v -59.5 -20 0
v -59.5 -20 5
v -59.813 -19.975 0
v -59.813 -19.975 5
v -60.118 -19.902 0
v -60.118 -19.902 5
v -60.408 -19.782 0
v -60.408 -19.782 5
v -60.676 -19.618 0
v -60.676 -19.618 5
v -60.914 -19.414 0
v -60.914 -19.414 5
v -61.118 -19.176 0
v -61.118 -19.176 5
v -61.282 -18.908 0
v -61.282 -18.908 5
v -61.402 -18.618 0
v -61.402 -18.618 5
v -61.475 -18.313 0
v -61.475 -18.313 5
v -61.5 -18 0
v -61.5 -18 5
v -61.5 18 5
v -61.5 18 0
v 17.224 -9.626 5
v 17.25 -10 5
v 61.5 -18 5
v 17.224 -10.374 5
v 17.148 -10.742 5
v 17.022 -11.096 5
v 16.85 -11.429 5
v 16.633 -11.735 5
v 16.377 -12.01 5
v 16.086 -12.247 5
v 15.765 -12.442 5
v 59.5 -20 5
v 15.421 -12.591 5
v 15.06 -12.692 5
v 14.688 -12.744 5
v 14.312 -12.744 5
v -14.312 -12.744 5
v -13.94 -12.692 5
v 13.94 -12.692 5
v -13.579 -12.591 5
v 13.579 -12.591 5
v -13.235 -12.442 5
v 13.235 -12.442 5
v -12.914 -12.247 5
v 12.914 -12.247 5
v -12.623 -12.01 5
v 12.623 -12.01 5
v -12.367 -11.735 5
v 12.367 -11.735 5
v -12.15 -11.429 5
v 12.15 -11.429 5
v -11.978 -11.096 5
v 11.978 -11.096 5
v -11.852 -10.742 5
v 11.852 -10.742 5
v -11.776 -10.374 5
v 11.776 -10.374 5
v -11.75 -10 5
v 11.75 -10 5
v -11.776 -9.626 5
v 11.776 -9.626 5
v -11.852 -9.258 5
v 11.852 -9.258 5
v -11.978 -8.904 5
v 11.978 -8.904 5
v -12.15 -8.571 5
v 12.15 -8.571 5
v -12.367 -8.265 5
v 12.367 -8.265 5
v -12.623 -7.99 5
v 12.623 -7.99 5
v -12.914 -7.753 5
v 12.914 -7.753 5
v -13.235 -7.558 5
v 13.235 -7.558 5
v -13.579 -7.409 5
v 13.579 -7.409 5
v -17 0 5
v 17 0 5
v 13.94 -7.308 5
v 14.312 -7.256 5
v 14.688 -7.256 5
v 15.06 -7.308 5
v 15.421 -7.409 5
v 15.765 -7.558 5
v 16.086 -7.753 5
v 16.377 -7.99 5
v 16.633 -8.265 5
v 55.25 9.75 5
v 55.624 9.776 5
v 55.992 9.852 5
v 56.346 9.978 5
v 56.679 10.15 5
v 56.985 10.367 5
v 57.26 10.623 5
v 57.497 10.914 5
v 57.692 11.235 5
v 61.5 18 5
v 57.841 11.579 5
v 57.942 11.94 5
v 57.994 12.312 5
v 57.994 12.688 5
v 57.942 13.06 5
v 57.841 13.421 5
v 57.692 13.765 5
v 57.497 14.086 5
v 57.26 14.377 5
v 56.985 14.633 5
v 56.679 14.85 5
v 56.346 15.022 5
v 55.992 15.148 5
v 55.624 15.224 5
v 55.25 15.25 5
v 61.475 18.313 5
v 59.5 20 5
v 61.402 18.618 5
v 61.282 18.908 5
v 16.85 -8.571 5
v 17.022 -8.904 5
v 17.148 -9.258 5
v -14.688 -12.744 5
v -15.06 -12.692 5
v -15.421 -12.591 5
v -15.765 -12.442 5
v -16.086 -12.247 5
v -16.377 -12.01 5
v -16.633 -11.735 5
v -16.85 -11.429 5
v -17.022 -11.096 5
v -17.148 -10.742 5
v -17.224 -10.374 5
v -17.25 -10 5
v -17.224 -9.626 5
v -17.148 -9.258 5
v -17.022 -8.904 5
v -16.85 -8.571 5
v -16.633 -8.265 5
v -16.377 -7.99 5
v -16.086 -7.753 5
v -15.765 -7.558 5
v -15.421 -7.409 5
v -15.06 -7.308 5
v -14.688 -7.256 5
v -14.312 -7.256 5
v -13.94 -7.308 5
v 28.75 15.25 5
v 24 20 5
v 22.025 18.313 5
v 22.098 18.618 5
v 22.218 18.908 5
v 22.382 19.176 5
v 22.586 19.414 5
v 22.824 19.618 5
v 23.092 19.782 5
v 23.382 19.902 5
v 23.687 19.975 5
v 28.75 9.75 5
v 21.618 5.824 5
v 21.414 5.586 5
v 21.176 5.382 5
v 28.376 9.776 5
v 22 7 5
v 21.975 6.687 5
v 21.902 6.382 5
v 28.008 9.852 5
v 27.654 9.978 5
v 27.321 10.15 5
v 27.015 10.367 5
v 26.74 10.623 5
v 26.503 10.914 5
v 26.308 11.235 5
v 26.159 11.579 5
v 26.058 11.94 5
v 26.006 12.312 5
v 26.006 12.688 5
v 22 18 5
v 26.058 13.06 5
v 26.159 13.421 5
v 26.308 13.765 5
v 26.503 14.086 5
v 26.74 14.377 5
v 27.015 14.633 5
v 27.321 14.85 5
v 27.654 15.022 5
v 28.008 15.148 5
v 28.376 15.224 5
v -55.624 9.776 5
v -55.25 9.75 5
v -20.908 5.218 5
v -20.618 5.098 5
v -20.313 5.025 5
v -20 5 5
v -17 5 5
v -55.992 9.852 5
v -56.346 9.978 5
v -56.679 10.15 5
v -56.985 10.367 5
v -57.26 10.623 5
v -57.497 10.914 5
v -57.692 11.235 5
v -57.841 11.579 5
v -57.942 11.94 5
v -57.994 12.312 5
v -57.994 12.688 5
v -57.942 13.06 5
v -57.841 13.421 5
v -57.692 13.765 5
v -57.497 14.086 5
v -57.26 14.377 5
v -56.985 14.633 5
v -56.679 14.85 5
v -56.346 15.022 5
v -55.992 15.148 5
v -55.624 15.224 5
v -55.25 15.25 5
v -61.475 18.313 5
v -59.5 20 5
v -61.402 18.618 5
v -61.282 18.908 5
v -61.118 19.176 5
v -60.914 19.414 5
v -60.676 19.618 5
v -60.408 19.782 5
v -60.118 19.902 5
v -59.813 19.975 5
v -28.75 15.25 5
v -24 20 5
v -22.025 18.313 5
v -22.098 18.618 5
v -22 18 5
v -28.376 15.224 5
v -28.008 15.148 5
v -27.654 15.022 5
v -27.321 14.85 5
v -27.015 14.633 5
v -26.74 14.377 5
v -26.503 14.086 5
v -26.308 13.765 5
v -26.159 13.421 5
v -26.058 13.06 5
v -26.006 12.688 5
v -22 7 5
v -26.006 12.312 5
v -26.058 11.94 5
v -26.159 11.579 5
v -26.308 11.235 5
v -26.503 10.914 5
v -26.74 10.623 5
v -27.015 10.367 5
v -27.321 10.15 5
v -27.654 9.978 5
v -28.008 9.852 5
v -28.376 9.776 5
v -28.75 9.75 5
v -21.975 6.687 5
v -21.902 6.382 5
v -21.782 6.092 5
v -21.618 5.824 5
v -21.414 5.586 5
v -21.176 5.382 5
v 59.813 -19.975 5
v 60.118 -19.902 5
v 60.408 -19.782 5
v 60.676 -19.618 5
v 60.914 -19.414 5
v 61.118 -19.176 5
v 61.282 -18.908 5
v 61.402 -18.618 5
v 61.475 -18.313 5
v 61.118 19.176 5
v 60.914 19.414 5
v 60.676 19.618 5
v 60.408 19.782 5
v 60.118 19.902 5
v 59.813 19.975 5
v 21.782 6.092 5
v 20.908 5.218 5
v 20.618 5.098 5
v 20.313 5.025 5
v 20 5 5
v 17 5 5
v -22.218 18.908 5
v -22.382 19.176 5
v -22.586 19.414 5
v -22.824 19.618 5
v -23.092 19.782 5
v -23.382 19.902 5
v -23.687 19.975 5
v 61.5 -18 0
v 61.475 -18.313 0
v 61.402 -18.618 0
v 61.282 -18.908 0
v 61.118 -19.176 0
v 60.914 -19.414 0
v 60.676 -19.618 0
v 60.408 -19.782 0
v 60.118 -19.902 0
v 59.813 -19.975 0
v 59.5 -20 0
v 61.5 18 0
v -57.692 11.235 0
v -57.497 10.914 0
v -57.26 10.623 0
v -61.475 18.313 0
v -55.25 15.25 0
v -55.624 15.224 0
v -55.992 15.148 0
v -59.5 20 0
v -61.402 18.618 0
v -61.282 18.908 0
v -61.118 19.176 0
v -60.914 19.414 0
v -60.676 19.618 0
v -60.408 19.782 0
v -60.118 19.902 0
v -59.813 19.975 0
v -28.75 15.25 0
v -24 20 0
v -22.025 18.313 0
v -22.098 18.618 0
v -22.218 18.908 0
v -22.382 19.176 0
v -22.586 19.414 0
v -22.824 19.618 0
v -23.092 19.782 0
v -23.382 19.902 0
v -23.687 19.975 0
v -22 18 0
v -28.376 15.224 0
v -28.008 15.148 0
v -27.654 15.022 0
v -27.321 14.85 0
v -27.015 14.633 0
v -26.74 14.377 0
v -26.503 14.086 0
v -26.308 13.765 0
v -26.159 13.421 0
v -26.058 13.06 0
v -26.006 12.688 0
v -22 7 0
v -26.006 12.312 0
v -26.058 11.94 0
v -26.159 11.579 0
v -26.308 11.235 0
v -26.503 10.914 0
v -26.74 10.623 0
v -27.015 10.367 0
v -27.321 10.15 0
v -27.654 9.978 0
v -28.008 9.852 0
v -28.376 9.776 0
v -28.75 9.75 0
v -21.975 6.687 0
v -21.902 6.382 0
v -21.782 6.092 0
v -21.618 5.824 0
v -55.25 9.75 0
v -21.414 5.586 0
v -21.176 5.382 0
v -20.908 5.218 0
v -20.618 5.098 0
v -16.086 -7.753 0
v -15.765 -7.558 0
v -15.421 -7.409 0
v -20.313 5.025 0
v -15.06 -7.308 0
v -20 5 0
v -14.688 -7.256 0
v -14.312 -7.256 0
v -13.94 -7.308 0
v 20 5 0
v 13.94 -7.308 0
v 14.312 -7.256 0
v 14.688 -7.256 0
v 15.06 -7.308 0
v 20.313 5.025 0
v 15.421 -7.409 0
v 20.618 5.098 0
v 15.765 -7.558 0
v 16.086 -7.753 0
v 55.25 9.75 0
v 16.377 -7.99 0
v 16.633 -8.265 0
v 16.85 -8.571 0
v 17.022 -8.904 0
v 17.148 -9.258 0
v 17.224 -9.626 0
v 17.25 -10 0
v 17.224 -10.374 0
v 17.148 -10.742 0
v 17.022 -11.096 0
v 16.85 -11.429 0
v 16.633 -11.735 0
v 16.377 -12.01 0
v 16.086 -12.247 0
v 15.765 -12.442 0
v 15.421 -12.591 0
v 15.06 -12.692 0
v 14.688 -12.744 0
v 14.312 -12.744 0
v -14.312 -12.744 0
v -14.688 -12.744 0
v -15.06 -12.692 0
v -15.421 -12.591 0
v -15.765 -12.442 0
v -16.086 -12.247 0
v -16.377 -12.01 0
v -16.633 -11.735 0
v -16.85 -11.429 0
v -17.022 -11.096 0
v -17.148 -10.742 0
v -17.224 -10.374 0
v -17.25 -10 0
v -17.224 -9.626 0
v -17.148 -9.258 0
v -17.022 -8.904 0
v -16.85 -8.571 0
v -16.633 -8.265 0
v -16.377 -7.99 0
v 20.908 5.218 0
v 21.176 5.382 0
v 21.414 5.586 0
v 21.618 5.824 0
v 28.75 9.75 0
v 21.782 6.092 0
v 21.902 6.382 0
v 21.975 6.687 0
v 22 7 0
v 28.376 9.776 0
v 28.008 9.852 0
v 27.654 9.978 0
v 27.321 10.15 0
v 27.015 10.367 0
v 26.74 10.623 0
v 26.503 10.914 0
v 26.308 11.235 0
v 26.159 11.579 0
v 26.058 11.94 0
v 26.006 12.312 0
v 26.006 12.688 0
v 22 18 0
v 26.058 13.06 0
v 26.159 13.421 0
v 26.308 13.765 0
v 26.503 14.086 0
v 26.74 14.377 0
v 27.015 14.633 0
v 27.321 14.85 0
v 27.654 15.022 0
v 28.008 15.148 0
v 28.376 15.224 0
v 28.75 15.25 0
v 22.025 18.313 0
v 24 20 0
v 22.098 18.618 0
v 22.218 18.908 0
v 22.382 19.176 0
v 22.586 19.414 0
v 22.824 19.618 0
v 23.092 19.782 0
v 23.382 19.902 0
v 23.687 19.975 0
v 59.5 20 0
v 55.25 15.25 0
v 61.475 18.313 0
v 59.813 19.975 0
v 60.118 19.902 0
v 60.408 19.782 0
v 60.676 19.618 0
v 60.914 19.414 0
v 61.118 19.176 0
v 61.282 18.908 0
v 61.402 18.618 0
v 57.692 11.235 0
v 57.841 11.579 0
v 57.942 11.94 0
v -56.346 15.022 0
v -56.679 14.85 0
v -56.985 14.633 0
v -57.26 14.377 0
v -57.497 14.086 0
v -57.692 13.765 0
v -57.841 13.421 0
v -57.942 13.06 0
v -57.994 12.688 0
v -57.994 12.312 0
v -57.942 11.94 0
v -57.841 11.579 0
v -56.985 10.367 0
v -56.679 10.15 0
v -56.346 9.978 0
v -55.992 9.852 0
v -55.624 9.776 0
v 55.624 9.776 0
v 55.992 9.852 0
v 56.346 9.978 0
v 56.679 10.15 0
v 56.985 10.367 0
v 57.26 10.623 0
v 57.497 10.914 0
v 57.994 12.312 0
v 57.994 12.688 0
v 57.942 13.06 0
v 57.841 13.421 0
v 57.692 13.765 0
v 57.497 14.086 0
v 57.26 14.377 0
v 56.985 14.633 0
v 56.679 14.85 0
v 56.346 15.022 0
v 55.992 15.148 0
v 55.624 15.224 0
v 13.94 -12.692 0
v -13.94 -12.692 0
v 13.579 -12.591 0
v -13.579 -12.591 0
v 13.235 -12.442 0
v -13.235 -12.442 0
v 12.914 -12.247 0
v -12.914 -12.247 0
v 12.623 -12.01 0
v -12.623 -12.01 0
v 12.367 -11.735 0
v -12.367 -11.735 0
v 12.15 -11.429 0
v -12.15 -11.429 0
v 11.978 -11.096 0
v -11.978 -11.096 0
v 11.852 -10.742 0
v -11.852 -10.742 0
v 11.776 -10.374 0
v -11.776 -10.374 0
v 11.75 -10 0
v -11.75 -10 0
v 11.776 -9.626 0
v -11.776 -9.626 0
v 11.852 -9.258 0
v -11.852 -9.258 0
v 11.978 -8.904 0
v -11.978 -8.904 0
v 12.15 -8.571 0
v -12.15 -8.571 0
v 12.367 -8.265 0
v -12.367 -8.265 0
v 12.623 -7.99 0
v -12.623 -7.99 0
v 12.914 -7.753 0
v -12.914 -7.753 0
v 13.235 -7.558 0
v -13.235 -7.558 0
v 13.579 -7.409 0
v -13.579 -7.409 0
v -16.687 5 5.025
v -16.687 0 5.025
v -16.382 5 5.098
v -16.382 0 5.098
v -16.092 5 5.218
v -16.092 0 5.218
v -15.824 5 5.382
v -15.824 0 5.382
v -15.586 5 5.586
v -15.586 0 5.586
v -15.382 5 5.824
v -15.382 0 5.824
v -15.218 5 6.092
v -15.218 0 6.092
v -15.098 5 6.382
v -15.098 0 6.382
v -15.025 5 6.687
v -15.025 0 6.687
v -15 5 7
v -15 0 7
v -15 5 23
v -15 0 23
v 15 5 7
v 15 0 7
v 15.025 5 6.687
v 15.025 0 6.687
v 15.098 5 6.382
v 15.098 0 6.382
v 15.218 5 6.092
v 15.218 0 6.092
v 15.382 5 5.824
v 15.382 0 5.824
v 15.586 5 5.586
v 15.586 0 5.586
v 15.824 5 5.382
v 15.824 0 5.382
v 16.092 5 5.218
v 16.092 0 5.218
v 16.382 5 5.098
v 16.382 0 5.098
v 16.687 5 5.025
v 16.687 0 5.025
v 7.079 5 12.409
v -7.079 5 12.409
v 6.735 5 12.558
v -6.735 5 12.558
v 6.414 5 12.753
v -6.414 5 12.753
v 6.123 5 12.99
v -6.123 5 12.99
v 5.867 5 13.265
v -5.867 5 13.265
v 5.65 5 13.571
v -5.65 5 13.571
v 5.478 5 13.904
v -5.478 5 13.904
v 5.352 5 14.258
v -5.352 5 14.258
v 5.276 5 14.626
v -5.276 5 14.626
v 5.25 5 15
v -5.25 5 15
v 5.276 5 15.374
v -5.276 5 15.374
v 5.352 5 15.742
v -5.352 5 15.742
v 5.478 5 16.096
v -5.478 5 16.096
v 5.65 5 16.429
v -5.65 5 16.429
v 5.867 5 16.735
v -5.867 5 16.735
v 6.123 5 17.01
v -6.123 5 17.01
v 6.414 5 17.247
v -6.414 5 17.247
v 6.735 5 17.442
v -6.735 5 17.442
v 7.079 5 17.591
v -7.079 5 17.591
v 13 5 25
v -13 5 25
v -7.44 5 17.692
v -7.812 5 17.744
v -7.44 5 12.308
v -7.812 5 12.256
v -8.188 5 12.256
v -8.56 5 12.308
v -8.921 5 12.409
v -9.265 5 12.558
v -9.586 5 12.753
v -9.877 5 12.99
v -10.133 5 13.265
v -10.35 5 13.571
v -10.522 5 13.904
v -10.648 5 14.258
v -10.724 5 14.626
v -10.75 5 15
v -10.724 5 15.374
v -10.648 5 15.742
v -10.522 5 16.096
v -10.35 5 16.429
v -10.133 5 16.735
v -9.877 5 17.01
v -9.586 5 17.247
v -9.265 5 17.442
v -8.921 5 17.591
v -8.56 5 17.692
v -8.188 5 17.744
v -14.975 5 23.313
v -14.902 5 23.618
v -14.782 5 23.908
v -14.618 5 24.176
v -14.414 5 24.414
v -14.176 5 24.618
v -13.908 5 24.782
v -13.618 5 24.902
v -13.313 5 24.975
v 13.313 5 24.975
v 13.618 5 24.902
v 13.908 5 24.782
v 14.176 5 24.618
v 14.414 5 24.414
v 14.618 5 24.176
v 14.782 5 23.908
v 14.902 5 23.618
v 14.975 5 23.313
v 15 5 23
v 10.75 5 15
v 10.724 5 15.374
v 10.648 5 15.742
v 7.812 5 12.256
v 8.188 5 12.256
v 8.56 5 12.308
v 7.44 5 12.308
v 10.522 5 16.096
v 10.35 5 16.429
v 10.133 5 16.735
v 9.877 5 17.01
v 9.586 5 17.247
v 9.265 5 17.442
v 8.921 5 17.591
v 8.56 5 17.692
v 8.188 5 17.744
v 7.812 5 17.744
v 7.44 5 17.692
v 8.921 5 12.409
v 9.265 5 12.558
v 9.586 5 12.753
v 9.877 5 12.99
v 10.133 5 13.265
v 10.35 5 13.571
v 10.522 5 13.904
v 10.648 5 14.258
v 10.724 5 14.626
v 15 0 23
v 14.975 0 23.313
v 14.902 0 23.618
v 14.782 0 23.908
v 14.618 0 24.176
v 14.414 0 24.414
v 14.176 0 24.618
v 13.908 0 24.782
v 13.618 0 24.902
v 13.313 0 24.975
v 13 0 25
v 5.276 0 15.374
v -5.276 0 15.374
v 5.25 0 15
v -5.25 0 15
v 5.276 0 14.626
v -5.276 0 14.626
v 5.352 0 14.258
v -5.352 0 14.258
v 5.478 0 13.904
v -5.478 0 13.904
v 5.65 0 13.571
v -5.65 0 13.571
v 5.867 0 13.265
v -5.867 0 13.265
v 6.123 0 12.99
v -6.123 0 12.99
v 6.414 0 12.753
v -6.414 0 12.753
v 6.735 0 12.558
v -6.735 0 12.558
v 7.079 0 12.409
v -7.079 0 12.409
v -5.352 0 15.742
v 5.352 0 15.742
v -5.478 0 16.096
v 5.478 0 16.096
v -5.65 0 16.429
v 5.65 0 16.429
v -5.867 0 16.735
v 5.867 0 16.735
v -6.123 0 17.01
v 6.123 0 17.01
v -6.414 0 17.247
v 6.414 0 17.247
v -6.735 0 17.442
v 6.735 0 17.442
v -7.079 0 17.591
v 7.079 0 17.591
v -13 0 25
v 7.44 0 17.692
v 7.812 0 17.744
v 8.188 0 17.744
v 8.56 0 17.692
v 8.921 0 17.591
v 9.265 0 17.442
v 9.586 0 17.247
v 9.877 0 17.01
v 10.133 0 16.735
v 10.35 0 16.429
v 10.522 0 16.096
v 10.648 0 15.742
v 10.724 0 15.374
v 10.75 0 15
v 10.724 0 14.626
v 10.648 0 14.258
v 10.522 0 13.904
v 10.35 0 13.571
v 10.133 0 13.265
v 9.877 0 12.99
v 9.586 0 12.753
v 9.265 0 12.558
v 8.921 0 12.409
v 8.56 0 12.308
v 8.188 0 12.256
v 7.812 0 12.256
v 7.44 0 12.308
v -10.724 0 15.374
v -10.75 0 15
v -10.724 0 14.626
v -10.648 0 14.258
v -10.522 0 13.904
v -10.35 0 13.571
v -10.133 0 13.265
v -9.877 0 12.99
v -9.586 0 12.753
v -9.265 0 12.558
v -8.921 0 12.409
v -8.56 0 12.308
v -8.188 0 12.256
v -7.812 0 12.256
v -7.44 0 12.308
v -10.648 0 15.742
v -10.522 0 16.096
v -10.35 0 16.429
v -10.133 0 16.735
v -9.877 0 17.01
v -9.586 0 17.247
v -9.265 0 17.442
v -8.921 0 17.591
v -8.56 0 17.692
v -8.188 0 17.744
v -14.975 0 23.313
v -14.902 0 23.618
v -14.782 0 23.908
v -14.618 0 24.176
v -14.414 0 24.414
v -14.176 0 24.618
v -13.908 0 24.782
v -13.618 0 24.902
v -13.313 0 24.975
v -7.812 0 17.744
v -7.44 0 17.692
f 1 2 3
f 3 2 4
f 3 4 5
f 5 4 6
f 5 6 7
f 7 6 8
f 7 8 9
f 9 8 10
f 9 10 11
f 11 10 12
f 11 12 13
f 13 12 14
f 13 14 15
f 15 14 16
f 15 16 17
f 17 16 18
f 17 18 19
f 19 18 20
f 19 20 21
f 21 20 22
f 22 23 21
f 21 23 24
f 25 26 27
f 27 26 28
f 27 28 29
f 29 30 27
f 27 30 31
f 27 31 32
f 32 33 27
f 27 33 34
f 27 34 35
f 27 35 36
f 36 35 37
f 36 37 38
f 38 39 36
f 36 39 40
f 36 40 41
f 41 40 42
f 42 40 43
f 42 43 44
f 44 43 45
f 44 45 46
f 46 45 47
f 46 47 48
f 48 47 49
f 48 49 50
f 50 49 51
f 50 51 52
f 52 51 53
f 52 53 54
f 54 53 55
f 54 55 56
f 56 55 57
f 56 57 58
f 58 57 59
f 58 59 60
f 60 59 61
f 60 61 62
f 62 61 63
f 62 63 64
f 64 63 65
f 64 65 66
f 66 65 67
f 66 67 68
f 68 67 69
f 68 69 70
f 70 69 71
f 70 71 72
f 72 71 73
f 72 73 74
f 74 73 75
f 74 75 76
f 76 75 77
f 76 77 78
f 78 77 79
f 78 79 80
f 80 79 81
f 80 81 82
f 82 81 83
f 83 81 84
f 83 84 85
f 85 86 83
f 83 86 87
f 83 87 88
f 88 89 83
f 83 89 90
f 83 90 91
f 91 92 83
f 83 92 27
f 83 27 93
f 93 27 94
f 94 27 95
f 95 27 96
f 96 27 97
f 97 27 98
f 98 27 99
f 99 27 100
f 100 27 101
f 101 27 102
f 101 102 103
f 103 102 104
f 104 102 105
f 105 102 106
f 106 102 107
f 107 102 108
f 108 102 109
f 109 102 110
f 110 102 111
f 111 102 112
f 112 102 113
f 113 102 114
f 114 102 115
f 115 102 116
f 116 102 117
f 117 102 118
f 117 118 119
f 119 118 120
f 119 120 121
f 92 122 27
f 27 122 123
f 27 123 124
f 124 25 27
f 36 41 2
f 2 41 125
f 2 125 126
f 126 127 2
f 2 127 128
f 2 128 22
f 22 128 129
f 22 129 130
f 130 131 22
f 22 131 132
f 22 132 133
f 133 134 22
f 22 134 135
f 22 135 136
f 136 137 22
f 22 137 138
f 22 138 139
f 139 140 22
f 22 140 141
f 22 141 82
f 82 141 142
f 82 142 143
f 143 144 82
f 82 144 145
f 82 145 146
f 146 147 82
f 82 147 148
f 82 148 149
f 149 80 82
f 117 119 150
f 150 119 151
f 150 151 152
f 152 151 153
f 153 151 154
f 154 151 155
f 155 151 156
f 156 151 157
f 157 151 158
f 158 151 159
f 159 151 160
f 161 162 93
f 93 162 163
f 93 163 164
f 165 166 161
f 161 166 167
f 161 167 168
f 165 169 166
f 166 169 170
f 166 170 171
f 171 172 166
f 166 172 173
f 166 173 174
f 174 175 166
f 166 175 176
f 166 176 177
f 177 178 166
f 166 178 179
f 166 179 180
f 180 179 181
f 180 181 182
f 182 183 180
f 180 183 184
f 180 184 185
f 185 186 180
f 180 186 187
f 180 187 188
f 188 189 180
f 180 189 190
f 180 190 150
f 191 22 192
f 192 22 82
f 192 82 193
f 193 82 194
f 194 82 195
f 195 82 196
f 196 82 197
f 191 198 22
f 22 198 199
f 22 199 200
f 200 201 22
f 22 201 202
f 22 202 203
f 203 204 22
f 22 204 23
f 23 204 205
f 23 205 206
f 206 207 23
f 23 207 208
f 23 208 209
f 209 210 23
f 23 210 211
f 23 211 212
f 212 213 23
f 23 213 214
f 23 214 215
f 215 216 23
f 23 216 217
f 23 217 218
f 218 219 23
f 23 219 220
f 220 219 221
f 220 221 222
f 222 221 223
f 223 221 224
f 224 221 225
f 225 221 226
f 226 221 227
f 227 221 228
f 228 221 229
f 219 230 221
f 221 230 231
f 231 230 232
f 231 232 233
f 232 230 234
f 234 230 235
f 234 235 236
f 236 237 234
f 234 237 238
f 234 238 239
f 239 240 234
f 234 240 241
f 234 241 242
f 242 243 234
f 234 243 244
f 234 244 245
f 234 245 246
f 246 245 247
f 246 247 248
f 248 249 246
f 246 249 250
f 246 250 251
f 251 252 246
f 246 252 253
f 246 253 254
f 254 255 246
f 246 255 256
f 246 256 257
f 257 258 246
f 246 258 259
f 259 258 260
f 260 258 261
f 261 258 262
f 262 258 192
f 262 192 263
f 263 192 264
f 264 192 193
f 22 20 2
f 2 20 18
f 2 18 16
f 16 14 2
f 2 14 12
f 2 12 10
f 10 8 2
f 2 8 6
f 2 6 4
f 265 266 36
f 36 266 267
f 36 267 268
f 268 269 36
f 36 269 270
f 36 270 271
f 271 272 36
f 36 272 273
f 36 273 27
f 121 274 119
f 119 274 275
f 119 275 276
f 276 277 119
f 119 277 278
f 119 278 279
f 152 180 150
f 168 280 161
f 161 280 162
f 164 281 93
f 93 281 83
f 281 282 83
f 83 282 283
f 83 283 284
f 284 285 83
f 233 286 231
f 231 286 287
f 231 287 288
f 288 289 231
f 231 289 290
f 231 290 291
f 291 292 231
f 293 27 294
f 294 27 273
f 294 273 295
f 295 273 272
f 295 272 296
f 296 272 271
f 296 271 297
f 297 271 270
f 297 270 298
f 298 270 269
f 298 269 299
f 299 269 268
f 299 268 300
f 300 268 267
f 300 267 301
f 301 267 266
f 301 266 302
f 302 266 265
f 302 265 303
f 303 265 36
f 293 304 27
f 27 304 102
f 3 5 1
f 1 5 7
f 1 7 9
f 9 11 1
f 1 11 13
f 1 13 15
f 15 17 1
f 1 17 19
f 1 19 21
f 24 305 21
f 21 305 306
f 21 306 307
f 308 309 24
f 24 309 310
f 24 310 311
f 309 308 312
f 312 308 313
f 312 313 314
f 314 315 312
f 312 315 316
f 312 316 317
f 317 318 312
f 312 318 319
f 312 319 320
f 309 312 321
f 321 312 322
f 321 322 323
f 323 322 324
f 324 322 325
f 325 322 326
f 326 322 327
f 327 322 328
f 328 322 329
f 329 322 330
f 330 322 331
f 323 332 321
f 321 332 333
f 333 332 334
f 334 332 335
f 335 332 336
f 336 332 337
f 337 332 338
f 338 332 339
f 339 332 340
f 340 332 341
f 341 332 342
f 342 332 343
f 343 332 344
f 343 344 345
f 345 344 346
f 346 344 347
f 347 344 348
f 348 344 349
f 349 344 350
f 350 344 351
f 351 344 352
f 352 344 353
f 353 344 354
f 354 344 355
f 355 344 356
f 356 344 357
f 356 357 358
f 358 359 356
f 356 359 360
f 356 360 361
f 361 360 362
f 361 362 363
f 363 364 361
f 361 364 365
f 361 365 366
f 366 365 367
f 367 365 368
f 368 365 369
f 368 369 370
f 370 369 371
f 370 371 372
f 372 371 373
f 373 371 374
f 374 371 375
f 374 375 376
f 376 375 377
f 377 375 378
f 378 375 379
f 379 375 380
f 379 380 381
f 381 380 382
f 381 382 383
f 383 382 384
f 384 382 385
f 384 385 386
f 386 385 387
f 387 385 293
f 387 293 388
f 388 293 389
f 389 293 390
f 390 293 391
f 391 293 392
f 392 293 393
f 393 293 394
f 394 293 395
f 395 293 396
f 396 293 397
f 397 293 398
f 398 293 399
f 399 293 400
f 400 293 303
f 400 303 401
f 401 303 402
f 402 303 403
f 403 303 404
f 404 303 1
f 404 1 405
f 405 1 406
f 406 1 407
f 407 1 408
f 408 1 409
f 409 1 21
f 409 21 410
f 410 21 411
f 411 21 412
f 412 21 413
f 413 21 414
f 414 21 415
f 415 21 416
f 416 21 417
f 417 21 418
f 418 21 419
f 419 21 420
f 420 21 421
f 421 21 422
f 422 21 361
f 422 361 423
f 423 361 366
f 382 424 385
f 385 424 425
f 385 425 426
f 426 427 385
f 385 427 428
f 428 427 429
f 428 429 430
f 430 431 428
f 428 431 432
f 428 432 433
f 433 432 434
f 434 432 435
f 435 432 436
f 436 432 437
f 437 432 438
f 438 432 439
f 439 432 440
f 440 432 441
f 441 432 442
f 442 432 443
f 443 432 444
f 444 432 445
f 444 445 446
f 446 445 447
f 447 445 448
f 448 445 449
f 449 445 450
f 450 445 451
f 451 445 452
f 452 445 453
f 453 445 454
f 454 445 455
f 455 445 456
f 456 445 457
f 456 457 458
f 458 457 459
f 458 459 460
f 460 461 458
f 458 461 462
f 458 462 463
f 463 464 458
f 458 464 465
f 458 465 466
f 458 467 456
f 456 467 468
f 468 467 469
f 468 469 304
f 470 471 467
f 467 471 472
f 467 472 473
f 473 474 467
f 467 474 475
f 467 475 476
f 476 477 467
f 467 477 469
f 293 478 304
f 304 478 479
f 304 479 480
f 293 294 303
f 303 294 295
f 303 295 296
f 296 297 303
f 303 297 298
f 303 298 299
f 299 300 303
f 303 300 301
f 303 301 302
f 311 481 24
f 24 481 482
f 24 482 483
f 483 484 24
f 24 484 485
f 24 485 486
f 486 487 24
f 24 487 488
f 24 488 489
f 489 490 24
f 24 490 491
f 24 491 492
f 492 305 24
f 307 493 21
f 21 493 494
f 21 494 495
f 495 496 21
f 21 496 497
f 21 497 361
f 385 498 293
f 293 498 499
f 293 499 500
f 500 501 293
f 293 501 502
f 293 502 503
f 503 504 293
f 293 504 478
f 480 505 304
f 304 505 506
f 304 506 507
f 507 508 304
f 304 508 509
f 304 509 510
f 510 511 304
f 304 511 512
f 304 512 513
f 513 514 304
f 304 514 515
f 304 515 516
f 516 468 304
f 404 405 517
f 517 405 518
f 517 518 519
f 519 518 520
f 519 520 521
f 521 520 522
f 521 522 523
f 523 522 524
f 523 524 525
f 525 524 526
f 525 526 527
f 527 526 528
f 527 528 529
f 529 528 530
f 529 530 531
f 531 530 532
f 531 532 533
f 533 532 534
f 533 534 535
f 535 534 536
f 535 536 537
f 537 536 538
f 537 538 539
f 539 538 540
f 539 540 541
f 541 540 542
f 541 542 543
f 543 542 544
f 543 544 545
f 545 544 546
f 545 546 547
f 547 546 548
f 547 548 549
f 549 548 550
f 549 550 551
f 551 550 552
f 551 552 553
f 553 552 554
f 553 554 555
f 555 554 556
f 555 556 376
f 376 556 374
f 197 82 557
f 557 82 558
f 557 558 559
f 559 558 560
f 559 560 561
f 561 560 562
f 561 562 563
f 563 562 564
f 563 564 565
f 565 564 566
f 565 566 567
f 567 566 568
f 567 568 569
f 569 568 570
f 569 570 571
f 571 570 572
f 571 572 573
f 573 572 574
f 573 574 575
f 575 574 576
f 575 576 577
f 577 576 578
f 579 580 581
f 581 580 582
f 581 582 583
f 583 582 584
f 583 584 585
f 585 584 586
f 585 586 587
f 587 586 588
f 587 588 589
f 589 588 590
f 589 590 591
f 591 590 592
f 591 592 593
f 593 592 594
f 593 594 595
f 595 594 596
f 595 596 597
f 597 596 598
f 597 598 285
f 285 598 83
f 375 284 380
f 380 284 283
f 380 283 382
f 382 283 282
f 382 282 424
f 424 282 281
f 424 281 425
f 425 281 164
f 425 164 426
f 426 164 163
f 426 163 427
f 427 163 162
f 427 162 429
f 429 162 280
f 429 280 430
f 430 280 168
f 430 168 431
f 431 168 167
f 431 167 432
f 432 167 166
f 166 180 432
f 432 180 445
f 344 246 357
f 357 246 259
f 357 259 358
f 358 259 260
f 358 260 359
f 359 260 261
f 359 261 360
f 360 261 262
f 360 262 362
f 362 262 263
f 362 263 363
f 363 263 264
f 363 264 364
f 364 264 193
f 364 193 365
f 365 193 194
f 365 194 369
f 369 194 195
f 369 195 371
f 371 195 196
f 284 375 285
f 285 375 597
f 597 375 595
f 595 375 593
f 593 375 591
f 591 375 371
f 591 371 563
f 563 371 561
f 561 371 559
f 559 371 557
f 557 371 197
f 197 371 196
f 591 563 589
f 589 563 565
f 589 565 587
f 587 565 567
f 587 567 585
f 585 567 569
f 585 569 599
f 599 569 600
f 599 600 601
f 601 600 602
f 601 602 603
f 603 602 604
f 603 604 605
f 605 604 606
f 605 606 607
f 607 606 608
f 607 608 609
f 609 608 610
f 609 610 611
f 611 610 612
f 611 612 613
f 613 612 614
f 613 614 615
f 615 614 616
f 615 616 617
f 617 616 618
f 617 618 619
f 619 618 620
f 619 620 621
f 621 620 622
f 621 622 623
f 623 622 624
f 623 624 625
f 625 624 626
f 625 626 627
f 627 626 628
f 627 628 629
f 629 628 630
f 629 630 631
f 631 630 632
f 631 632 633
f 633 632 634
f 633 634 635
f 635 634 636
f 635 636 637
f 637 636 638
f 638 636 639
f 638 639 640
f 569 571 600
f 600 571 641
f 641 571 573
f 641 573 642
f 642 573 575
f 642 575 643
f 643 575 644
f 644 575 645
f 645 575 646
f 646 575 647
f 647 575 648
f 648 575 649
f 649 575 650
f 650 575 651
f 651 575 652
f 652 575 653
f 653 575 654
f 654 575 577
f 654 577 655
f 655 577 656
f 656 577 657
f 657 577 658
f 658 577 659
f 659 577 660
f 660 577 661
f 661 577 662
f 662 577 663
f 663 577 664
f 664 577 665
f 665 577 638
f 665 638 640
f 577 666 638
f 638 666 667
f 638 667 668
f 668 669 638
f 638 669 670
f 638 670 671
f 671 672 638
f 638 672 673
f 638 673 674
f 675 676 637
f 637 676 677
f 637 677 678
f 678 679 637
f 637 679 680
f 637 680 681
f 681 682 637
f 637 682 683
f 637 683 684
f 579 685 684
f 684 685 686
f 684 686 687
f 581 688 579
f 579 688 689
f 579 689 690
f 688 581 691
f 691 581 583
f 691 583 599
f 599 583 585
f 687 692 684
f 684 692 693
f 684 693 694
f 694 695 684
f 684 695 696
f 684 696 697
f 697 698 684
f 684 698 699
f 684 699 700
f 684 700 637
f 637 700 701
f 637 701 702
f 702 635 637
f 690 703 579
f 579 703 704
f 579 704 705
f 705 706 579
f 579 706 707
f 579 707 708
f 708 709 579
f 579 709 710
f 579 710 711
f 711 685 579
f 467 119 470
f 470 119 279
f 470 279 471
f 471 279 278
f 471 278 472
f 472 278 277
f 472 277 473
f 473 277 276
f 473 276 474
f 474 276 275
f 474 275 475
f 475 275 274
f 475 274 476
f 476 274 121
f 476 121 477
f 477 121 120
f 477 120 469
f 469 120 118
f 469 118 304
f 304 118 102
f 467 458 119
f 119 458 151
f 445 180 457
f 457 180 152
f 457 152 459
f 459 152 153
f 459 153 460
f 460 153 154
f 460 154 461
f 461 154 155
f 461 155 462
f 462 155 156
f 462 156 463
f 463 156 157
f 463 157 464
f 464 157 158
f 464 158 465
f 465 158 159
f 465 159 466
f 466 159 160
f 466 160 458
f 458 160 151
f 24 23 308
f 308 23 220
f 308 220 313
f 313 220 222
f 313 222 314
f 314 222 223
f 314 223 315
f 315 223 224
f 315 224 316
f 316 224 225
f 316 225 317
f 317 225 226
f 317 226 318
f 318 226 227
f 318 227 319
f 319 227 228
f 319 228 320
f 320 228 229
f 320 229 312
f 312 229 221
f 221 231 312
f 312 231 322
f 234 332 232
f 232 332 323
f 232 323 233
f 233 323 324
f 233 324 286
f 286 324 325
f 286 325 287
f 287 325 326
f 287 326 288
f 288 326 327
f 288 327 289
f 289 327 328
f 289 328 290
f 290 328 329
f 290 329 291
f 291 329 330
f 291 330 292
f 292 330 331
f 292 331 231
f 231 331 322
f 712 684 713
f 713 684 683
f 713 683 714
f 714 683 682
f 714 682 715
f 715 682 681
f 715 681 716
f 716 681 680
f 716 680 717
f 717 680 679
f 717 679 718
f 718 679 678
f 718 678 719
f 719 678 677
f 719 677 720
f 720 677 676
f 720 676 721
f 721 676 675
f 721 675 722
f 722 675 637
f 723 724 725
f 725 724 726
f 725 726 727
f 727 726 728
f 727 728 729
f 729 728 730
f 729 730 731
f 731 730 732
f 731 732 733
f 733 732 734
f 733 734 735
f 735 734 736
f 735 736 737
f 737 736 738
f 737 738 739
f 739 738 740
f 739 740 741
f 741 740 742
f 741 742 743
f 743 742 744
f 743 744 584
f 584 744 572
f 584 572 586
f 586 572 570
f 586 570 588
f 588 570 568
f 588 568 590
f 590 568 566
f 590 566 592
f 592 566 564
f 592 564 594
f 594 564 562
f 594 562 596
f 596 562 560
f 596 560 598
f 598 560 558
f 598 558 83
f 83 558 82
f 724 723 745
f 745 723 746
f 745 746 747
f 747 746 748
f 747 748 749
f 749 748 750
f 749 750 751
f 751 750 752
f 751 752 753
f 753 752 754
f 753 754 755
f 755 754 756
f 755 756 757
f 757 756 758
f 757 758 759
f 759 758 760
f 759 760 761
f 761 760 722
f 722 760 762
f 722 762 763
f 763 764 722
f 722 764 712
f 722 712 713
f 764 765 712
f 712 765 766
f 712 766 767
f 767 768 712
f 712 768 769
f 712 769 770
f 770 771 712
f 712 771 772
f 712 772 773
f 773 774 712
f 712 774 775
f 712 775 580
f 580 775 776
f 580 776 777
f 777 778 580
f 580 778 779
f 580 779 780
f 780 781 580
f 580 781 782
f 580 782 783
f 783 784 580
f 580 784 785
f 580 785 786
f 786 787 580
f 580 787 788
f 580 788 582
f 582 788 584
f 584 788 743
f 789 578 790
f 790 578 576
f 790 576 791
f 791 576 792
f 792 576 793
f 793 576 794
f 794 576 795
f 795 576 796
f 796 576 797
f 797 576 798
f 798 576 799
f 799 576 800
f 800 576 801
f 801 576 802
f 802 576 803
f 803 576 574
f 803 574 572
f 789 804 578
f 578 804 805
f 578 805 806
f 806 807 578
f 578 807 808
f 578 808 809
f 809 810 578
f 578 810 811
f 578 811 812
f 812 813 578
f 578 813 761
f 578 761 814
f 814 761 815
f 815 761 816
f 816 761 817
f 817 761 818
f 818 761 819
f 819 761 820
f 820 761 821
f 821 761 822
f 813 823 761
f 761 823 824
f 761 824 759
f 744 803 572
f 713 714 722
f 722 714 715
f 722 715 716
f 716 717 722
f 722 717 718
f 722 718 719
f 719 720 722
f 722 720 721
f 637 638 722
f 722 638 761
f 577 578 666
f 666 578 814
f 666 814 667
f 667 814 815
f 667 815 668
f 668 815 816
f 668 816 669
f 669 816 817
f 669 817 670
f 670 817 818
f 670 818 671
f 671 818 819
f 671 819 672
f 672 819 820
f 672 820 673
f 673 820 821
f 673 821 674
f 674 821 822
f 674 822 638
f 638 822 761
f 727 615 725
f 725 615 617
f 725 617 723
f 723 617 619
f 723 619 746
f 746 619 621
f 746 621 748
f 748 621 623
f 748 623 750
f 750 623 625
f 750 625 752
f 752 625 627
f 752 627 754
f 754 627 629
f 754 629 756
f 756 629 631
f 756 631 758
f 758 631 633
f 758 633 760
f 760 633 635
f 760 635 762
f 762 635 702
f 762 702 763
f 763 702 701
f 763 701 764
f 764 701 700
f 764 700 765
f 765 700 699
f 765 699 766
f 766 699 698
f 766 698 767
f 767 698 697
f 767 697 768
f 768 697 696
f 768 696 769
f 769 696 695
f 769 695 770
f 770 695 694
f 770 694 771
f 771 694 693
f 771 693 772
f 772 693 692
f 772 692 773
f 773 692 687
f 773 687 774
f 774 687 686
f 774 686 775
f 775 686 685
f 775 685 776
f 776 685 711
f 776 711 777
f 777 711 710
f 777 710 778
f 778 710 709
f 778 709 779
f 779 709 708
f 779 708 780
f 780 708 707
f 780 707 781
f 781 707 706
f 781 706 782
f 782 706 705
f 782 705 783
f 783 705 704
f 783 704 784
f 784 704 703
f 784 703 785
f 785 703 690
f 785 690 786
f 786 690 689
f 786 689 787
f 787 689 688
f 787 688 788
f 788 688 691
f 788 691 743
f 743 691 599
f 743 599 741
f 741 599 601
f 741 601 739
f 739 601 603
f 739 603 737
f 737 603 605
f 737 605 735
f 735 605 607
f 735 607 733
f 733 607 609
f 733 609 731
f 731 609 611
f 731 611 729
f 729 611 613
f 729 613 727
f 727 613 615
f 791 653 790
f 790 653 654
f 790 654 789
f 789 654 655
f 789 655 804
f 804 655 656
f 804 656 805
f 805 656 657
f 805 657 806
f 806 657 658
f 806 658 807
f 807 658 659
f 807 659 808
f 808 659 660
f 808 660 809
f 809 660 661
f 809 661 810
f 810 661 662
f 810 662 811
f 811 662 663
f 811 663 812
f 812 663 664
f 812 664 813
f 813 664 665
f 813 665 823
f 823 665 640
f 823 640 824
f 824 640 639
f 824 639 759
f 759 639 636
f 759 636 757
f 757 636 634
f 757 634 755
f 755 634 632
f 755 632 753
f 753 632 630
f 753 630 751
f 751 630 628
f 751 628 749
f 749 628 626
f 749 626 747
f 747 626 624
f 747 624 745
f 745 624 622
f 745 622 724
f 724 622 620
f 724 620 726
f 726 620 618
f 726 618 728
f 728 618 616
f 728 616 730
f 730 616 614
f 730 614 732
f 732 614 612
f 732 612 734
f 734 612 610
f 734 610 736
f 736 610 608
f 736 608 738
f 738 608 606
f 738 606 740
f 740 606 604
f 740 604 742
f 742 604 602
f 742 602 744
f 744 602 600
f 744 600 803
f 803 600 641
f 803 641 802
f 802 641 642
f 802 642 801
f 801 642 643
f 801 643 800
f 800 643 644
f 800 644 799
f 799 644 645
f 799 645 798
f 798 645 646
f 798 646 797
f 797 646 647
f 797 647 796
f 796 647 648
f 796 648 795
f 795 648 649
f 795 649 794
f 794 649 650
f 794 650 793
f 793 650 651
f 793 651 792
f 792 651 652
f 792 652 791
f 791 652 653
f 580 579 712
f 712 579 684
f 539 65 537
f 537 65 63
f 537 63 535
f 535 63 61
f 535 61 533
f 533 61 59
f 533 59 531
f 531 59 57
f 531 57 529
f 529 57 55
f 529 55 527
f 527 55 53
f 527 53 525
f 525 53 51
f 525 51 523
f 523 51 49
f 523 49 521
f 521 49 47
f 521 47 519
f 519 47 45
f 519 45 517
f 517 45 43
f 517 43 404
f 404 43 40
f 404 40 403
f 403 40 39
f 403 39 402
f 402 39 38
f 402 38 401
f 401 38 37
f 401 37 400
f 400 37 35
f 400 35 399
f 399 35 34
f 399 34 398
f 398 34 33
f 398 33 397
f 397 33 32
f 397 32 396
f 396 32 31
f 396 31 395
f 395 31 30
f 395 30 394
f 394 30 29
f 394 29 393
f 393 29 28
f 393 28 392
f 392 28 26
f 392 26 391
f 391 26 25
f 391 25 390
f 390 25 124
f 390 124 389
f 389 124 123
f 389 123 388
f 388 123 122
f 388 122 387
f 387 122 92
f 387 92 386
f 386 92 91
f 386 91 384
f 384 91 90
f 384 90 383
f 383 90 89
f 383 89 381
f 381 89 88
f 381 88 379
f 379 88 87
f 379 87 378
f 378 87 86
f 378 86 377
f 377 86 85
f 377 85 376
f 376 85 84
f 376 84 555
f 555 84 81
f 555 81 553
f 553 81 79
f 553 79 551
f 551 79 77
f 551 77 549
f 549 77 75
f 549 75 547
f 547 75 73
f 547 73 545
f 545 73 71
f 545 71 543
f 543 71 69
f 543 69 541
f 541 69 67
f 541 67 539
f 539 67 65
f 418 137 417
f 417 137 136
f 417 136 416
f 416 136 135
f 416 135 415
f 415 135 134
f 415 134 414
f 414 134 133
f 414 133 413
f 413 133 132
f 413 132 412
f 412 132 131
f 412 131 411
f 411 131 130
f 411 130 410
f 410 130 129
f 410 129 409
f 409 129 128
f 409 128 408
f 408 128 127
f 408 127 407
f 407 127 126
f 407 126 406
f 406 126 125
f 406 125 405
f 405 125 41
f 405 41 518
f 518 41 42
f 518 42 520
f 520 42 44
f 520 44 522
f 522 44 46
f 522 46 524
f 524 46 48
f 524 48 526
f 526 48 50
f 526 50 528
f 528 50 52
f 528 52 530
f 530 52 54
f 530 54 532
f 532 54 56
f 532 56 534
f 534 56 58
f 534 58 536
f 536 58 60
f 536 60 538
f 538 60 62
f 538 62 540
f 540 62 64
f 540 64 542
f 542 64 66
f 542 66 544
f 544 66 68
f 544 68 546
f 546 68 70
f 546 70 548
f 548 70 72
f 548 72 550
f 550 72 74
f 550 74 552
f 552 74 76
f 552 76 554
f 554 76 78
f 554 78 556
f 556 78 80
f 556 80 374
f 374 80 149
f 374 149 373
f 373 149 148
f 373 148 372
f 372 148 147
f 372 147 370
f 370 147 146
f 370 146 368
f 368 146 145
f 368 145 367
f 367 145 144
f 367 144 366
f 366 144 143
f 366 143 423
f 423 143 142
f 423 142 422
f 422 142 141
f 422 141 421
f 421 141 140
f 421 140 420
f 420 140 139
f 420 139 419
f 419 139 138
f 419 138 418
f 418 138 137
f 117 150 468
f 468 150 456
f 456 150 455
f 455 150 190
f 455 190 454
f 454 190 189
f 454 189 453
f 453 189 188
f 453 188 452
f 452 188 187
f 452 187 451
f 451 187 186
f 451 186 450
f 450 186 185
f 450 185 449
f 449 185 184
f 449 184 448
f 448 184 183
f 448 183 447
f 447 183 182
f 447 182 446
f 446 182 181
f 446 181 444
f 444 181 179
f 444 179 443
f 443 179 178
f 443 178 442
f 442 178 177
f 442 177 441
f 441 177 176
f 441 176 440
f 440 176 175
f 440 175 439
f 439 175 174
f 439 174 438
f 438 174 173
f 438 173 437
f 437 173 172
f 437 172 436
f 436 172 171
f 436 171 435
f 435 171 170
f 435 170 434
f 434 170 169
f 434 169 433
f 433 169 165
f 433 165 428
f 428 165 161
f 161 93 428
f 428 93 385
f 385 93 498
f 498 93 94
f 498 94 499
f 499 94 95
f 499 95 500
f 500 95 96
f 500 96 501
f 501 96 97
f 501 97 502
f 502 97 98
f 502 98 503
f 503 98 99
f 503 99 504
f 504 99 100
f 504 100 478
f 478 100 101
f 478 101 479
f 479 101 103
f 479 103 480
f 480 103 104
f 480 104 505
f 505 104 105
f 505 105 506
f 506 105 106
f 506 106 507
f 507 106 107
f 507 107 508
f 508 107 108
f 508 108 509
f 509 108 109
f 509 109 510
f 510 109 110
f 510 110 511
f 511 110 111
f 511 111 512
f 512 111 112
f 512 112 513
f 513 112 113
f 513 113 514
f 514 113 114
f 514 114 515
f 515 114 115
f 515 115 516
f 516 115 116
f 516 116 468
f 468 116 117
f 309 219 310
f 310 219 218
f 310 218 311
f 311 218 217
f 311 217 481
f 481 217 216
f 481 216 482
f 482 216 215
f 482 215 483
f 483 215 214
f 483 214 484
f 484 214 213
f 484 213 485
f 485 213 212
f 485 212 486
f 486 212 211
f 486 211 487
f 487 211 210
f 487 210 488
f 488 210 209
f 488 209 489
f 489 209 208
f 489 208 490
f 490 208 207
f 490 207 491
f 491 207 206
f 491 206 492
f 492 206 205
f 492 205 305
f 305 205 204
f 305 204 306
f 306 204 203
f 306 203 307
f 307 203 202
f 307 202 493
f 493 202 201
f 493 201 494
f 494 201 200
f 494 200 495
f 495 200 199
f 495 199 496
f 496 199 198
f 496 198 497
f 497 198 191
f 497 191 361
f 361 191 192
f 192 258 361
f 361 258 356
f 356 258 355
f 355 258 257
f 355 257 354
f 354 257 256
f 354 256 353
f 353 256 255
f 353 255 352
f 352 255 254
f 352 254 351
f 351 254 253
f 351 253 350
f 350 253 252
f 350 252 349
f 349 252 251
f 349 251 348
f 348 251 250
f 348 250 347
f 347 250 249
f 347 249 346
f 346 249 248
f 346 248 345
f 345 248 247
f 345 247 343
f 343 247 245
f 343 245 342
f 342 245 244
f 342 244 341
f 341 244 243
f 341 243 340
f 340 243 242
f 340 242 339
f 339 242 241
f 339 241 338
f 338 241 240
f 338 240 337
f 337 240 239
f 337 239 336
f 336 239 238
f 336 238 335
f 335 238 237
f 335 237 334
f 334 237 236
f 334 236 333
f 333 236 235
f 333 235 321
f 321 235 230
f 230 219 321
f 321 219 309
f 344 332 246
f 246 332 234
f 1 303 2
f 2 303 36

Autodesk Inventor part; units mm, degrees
ref_plane "YZ Plane" through (0, 0, 0) normal (1, 0, 0) x (0, 1, 0)
ref_plane "XZ Plane" through (0, 0, 0) normal (0, 1, 0) x (-1, 0, 0)
ref_plane "XY Plane" through (0, 0, 0) normal (0, 0, 1) x (1, 0, 0)
sketch "スケッチ1" plane through (0, 0, 0) normal (0, 0, 1) x (1, 0, 0)
  line L0 (-61.5, -20) -> (61.5, -20)
  line L1 (61.5, -20) -> (61.5, 20)
  line L2 (61.5, 20) -> (-61.5, 20)
  line L3 (-61.5, 20) -> (-61.5, -20)
  line L4 (-61.5, -20) -> (61.5, 20) construction
  line L5 (61.5, -20) -> (-61.5, 20) construction
  point P0 (0, 0)
  dimension "d0" = 123
  dimension "d1" = 40
extrude "押し出し1" add sketch "スケッチ1" along normal blind 5
sketch "スケッチ2" plane through (0, 0, 5) normal (0, 0, 1) x (1, 0, 0)
  line L0 (61.5, 20) -> (-61.5, 20) projected
  line L1 (0, 20) -> (22, 20)
  line L2 (22, 20) -> (22, 5)
  line L3 (22, 5) -> (0, 5)
  line L4 (0, 5) -> (0, 20)
  line L5 (0, 20) -> (-22, 20)
  line L6 (-22, 20) -> (-22, 5)
  line L7 (-22, 5) -> (0, 5)
  line L8 (0, 5) -> (0, 20)
  point P0 (0, 0)
  dimension "d4" = 22
  dimension "d5" = 15
  dimension "d6" = 22
extrude "押し出し2" cut sketch "スケッチ2" against normal blind 5
sketch "スケッチ3" plane through (0, 0, 5) normal (0, 0, 1) x (1, 0, 0)
  line L0 (61.5, 20) -> (22, 20) projected
  line L1 (-22, 5) -> (-22, 20) projected
  line L2 (22, 20) -> (22, 5) projected
  line L3 (-28.75, 12.5) -> (-55.25, 12.5) construction
  line L4 (-28.75, 15.25) -> (-55.25, 15.25)
  line L5 (-55.25, 9.75) -> (-28.75, 9.75)
  arc A0 (-28.75, 9.75) -> (-28.75, 15.25) centre (-28.75, 12.5) ccw
  arc A1 (-55.25, 15.25) -> (-55.25, 9.75) centre (-55.25, 12.5) ccw
  line L6 (55.25, 12.5) -> (28.75, 12.5) construction
  line L7 (55.25, 15.25) -> (28.75, 15.25)
  line L8 (28.75, 9.75) -> (55.25, 9.75)
  arc A2 (55.25, 9.75) -> (55.25, 15.25) centre (55.25, 12.5) ccw
  arc A3 (28.75, 15.25) -> (28.75, 9.75) centre (28.75, 12.5) ccw
  point P0 (0, 0)
  point P1 (42, 12.5)
  point P2 (-42, 12.5)
  dimension "d9" = 7.5
  dimension "d10" = 20
  dimension "d11" = 20
  dimension "d12" = 32
  dimension "d13" = 5.5
  dimension "d14" = 32
  dimension "d15" = 5.5
extrude "押し出し3" cut sketch "スケッチ3" against normal blind 5
sketch "スケッチ4" plane through (0, 0, 5) normal (0, 0, 1) x (1, 0, 0)
  line L0 (-61.5, -20) -> (61.5, -20) projected
  line L1 (61.5, -20) -> (61.5, 20) projected
  line L2 (-61.5, 20) -> (-61.5, -20) projected
  point P0 (0, 0)
  point P1 (14.5, -10)
  point P2 (-14.5, -10)
  dimension "d18" = 10
  dimension "d19" = 47
  dimension "d20" = 47
  dimension "d21" = 10
hole "穴1" at (14.5, -10, 5) at (-14.5, -10, 5) direction (0, 0, -1) diameter 5.5 depth 8.8 tip angle 118
sketch "スケッチ5" plane through (0, 0, 5) normal (0, 0, 1) x (1, 0, 0)
  line L0 (-22, 5) -> (22, 5) projected
  line L1 (0, 5) -> (-15, 5)
  line L2 (-15, 5) -> (-15, 0)
  line L3 (-15, 0) -> (0, 0)
  line L4 (0, 0) -> (0, 5)
  line L5 (0, 0) -> (15, 0)
  line L6 (15, 0) -> (15, 5)
  line L7 (15, 5) -> (0, 5)
  line L8 (0, 5) -> (0, 0)
  point P0 (0, 0)
  dimension "d29" = 15
  dimension "d30" = 15
extrude "押し出し4" add sketch "スケッチ5" along normal blind 20
sketch "スケッチ6" plane through (-15, 0, 5) normal (0, -1, 0) x (1, 0, 0)
  point P0 (15, -5)
sketch "スケッチ7" plane through (-22, 5, 0) normal (0, 1, 0) x (1, 0, 0)
  line L0 (37, -25) -> (7, -25) projected
  line L1 (37, -5) -> (37, -25) projected
  line L2 (7, -5) -> (7, -25) projected
  point P0 (22, 0)
  point P1 (30, -15)
  point P2 (14, -15)
  dimension "d33" = 10
  dimension "d34" = 10
  dimension "d35" = 7
  dimension "d36" = 7
hole "穴2" at (8, 5, 15) at (-8, 5, 15) direction (0, -1, 0) diameter 5.5 depth 8.8 tip angle 118
fillet "フィレット1" radius 2 12 edges at (-15, 2.5, 25) (15, 2.5, 25) (-22, 20, 2.5) (-61.5, 20, 2.5) (22, 20, 2.5) (61.5, 20, 2.5) (-22, 5, 2.5) (22, 5, 2.5) (15, 2.5, 5) (-15, 2.5, 5) (61.5, -20, 2.5) (-61.5, -20, 2.5)
properties part number "20230309gamma"
